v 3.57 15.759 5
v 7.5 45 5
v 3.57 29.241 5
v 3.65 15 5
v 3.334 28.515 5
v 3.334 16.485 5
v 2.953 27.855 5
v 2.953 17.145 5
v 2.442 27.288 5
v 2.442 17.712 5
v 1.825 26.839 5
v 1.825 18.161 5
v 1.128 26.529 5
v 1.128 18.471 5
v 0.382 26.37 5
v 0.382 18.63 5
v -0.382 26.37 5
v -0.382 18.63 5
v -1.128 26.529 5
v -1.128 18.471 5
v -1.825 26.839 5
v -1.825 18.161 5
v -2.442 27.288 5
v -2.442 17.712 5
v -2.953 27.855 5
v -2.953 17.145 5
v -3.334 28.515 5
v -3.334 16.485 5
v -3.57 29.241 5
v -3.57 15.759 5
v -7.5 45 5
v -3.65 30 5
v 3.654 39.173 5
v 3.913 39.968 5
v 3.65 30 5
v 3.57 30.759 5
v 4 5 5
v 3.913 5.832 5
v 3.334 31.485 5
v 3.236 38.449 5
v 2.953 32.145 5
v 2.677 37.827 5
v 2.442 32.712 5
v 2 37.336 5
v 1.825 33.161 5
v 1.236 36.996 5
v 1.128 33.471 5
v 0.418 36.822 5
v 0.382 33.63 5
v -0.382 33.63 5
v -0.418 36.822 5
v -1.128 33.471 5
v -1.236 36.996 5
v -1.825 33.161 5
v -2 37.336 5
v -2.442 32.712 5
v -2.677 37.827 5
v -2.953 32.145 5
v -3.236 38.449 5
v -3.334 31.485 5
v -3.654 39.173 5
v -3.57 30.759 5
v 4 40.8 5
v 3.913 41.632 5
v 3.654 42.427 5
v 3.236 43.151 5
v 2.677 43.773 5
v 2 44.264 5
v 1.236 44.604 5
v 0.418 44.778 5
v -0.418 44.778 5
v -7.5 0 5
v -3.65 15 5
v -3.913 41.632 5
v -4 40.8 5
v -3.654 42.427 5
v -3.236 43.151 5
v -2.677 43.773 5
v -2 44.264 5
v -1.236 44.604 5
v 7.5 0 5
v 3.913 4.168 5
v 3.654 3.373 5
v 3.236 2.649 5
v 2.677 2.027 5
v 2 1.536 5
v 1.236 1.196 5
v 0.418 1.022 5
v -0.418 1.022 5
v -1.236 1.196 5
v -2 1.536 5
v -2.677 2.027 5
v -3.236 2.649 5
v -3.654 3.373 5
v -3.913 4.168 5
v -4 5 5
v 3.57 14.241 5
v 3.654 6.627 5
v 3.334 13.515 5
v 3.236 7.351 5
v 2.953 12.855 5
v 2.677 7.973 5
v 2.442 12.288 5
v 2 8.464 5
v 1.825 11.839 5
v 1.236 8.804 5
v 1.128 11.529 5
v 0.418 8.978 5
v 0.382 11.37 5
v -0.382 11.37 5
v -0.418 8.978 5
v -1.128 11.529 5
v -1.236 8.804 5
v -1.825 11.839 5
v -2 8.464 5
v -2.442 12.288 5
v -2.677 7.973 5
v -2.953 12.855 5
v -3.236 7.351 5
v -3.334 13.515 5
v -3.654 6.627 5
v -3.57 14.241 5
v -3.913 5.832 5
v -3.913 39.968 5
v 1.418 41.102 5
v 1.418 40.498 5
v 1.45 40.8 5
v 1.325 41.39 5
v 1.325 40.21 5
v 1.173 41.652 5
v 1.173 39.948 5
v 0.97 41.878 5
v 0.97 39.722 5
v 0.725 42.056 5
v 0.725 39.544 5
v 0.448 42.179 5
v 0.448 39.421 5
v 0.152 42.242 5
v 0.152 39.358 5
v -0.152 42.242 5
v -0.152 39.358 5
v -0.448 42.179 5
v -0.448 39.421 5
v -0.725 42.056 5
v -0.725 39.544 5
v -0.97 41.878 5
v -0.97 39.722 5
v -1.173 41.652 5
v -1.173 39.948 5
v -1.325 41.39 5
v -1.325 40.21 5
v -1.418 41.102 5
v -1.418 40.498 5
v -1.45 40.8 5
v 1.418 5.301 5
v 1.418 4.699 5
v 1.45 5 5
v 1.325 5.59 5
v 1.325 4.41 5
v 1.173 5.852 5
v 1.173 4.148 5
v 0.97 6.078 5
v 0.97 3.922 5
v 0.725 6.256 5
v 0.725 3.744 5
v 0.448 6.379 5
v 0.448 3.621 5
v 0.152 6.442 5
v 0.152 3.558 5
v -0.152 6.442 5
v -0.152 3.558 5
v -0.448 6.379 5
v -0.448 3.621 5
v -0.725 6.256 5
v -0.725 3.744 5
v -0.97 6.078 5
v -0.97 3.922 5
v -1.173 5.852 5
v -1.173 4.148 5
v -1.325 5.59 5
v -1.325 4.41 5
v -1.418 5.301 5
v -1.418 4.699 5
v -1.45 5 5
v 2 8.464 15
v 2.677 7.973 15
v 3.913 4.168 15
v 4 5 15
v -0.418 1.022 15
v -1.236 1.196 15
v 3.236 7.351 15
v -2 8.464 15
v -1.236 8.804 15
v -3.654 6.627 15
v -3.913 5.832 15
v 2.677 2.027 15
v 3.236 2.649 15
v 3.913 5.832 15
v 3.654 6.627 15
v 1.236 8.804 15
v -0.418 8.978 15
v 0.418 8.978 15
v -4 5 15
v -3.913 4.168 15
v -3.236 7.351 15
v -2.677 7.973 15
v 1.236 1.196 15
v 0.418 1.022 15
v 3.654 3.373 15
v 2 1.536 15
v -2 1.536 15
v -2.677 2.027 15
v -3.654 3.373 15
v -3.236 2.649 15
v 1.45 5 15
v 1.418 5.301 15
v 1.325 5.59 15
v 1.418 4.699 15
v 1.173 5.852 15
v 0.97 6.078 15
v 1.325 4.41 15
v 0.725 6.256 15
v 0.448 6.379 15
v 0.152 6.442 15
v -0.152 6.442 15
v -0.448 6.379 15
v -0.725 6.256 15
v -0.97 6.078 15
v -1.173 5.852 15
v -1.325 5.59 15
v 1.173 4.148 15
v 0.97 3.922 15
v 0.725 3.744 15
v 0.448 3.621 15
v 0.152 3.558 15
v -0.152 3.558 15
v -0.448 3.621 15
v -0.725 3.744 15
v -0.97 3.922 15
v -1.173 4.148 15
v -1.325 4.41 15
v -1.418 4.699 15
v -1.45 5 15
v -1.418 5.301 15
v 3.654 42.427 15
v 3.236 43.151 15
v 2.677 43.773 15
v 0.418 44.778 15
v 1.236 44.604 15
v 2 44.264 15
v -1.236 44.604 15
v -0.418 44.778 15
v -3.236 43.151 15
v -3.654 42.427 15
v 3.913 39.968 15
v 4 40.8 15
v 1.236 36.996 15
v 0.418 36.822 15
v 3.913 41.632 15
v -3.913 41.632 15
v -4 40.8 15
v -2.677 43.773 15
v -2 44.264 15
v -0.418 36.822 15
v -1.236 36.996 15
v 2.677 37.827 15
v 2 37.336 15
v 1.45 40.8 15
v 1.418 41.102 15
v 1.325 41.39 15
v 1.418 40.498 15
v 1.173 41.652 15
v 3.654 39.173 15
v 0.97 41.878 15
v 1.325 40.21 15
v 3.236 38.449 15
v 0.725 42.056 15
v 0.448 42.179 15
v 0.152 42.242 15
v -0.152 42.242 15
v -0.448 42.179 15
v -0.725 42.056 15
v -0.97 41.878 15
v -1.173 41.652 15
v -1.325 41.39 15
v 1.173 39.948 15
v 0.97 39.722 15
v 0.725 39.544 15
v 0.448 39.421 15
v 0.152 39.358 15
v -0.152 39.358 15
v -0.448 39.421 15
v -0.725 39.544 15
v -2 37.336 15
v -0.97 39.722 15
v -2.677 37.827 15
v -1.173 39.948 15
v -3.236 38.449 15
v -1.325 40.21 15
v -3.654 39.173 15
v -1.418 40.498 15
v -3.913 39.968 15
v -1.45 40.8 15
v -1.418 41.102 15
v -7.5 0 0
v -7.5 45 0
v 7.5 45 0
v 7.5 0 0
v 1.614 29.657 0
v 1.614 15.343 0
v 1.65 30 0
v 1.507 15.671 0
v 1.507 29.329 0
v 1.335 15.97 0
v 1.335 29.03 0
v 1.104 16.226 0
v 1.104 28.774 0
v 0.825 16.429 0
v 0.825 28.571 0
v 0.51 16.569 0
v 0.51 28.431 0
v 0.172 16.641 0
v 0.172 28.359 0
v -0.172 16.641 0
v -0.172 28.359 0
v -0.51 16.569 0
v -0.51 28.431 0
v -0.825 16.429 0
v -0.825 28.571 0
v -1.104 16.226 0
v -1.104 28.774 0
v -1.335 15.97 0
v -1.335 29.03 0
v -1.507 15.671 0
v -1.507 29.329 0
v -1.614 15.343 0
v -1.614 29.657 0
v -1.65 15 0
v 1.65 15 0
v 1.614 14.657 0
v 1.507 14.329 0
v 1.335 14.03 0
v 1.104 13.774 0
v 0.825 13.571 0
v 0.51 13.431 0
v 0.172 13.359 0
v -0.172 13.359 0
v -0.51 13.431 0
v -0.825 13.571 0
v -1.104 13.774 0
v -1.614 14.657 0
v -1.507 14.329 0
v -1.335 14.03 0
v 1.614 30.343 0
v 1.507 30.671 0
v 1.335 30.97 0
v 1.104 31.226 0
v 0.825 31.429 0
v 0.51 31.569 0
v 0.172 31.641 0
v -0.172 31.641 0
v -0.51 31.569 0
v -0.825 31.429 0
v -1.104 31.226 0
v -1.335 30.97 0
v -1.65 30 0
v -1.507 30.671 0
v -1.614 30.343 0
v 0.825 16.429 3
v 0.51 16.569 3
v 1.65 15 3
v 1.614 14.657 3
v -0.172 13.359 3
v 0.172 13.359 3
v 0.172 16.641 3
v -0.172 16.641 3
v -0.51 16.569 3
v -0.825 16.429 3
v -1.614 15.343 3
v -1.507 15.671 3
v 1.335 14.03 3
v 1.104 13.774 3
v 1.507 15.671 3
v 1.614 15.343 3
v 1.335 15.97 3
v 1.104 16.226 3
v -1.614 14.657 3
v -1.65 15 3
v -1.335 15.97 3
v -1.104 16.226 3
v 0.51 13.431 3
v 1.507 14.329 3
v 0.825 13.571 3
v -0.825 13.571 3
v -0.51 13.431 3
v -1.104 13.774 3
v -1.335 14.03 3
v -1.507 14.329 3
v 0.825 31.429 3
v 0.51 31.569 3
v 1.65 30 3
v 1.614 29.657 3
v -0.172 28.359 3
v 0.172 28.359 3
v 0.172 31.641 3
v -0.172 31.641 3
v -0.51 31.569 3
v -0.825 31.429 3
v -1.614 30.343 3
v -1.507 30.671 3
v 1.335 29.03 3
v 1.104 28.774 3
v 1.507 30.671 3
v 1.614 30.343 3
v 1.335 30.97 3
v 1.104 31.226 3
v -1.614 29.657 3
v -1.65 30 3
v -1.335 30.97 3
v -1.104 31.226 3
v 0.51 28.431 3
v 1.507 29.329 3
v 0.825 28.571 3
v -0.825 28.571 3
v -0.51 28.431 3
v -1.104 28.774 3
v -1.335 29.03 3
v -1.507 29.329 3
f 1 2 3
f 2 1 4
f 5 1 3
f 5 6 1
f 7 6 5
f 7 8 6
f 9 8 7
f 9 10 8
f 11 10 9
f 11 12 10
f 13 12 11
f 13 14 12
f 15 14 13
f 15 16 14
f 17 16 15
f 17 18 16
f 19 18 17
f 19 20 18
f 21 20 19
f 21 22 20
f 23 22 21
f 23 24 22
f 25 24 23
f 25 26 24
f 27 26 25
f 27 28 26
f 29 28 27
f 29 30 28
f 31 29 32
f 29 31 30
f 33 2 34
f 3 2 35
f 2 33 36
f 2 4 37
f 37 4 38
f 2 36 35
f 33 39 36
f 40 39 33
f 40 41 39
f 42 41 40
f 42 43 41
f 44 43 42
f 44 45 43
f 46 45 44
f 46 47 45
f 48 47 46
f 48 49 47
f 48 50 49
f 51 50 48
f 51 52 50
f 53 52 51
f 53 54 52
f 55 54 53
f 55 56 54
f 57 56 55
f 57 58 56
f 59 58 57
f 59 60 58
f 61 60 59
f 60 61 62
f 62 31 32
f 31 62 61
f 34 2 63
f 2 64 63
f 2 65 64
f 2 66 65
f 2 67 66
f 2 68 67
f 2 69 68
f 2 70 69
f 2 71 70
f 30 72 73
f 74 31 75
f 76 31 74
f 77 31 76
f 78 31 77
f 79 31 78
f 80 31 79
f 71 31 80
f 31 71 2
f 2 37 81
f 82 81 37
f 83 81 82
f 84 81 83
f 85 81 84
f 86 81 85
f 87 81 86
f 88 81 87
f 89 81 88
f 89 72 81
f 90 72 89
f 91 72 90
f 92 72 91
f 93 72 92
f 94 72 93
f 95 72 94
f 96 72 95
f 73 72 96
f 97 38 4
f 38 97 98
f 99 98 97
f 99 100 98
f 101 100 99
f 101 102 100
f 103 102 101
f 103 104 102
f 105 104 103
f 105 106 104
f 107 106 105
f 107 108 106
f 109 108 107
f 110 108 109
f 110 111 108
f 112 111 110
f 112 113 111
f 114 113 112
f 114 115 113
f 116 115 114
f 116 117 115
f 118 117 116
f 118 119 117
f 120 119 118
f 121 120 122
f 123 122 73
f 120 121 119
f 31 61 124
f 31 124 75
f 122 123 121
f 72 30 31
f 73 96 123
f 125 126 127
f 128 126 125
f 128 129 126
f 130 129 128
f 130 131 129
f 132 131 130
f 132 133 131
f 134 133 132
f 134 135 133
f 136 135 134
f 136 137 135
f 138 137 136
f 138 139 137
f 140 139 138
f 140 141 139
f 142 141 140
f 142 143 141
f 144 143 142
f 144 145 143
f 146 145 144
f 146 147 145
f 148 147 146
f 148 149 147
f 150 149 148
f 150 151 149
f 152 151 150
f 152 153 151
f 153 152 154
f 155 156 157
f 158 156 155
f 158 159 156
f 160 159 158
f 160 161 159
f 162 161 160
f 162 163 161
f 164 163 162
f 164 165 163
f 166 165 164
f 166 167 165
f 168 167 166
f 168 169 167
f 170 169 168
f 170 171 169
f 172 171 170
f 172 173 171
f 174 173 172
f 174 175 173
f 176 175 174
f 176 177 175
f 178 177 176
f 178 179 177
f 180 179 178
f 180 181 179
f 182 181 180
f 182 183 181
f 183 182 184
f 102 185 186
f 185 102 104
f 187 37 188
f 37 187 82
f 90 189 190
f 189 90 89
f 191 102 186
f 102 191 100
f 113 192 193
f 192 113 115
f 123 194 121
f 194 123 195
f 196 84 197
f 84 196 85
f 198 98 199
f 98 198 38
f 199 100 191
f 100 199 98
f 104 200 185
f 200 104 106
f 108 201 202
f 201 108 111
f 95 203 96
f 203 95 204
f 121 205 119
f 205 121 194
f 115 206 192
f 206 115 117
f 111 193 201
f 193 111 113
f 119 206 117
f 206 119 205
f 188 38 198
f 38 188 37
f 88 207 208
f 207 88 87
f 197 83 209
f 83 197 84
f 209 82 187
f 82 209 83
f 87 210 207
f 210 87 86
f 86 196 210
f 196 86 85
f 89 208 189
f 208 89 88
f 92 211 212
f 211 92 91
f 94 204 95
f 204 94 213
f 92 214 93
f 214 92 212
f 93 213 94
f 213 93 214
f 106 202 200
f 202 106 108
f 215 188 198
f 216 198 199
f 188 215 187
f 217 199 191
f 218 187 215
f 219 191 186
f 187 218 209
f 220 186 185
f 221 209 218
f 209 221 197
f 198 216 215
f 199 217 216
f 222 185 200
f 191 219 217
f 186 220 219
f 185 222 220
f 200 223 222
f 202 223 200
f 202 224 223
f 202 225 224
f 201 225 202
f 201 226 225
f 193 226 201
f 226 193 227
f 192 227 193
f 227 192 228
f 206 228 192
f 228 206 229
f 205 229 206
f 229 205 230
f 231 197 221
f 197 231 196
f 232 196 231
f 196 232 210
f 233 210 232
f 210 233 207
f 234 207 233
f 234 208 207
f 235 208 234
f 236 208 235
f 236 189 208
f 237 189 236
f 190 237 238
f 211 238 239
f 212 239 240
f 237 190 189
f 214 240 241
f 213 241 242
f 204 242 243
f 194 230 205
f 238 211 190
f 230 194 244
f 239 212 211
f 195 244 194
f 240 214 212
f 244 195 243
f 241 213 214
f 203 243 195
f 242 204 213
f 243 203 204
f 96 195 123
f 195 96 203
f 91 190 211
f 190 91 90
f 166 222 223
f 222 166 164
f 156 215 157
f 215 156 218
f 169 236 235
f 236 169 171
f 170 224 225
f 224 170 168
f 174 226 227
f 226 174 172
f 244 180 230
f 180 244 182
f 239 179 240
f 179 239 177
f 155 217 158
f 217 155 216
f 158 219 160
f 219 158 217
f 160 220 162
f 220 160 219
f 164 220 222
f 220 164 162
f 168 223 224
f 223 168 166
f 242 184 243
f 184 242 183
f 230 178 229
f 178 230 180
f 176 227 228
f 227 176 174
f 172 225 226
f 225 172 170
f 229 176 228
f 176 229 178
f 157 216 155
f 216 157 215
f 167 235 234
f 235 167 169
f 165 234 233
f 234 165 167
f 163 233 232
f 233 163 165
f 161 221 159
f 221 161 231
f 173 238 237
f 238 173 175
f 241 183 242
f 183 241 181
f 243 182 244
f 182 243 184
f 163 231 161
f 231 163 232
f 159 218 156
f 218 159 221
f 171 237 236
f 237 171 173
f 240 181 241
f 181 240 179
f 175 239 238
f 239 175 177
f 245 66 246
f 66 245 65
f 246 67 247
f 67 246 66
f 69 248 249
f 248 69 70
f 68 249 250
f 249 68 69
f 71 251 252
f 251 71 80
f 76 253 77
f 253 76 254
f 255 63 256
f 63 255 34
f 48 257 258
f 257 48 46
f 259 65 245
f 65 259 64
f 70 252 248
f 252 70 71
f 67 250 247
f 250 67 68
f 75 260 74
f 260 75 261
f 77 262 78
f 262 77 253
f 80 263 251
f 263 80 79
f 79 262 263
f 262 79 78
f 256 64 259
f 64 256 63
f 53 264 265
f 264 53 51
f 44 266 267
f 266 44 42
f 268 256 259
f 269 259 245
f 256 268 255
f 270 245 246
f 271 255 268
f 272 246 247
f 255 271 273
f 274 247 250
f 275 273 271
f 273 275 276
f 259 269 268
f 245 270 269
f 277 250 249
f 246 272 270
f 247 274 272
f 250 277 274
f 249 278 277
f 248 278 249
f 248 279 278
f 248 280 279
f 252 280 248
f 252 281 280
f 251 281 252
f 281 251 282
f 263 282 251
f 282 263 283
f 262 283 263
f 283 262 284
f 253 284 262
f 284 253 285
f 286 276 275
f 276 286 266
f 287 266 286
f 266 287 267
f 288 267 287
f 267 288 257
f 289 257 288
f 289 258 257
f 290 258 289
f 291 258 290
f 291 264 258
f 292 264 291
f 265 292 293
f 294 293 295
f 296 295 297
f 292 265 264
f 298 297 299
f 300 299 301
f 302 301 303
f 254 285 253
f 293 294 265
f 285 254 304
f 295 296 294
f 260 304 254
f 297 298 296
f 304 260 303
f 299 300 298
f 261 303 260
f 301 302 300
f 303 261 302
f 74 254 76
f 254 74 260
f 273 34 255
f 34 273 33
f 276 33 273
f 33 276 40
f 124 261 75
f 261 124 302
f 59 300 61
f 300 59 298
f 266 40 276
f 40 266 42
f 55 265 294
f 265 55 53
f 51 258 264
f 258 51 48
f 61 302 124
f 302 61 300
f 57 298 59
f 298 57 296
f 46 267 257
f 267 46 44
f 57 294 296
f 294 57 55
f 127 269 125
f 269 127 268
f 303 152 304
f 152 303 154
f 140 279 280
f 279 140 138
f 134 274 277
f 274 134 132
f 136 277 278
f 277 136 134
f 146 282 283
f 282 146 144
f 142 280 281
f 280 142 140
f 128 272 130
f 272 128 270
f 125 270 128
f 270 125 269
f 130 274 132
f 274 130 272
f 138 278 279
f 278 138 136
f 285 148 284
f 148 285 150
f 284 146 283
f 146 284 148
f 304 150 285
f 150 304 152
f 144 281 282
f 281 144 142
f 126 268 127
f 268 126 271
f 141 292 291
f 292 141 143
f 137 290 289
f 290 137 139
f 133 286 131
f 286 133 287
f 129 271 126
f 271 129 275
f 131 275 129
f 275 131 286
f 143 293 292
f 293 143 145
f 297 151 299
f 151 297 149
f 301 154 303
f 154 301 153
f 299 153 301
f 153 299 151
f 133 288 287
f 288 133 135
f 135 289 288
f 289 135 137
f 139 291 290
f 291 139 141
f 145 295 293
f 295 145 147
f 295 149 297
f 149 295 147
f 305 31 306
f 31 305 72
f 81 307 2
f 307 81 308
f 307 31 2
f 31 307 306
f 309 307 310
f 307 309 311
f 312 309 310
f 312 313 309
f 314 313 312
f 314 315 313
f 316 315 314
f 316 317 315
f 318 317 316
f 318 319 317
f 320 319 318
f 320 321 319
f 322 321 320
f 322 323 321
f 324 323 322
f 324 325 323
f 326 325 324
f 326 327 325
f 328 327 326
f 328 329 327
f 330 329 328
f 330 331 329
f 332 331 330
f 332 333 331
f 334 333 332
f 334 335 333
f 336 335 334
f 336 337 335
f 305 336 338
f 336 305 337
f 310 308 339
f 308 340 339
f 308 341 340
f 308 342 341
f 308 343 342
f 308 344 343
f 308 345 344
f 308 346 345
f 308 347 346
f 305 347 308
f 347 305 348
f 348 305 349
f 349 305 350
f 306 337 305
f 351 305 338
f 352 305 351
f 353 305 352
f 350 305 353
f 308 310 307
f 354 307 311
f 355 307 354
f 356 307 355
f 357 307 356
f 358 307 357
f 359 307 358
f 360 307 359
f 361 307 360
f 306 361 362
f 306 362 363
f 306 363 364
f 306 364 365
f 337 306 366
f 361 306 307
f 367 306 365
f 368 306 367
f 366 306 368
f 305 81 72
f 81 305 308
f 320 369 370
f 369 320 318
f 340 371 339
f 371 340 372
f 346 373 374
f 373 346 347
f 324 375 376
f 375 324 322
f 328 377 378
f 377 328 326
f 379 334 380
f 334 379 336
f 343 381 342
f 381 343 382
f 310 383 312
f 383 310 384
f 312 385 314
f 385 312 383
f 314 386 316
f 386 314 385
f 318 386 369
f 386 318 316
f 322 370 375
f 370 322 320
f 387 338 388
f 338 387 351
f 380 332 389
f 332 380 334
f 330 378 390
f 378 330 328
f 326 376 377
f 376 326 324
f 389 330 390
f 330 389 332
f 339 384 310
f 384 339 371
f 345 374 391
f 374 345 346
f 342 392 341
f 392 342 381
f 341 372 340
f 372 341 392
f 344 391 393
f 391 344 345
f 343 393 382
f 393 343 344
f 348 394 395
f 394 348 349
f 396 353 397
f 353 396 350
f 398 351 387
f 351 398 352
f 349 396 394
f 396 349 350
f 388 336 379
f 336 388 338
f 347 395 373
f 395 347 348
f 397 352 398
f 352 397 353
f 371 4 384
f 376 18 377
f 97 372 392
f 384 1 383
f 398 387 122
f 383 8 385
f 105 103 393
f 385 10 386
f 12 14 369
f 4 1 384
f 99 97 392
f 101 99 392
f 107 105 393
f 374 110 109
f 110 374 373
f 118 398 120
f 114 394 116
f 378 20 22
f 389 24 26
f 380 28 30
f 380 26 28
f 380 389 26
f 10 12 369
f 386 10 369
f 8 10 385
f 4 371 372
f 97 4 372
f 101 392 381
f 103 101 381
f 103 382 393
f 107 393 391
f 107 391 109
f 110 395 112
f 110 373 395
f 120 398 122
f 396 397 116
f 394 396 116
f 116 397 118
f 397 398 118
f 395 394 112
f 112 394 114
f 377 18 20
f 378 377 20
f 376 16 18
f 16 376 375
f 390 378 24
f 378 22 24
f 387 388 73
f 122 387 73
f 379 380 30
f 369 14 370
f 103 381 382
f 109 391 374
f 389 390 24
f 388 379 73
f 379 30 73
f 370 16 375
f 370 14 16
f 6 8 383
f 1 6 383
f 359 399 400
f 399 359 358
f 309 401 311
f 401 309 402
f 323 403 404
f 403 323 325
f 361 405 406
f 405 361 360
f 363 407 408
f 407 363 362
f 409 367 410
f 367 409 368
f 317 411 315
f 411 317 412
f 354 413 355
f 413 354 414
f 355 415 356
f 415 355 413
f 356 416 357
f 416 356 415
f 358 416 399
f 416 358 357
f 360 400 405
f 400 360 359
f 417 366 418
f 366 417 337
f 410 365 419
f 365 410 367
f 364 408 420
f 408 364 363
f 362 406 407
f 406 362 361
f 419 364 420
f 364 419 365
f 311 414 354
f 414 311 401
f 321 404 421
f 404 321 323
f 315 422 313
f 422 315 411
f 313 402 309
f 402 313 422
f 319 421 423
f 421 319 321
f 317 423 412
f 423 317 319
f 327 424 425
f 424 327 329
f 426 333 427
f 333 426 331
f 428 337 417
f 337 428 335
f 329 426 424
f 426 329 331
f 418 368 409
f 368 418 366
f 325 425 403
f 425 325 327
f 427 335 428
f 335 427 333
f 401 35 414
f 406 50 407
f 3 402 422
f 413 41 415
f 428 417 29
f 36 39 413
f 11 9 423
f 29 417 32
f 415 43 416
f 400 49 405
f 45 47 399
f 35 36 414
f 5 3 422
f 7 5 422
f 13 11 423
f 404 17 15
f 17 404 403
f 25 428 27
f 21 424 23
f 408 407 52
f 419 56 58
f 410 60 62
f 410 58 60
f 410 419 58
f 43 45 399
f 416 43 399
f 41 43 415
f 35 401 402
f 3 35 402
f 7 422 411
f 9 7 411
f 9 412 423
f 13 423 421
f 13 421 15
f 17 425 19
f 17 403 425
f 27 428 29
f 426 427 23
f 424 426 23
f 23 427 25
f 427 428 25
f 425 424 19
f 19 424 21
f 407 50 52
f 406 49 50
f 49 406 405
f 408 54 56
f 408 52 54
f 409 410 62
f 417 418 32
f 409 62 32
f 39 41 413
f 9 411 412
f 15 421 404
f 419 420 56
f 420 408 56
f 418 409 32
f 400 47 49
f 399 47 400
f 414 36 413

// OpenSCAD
// Quarter size perfboard mount.
// 2.5mm holes for machine screws.
// Should drill/tap after print
// Adafruit Perma-Proto Quarter-sized Breadboard PCB 

$fn=30; // Number of facets

mouting_hole = 2.9; // mounting hole diameter
bh=5; // base height
d=35.8;

//Spacer with hole
module spacer(x=0, y=0, z=0){
    difference(){
        translate([x,y,z]){
            cylinder(d=8, h=10);
        }
        translate([x,y,z]){
            cylinder(d=mouting_hole, h=12);
        }
    }
}

spacer(0, 5, bh);
spacer(0, 5+d, bh);

bx = 15;
by = 45;
    
// Draw base
module base() {
    translate([-bx/2,0,0]){
    cube([bx, by, bh]);
    }
}

// Mounting holes
// #6 screw = 3.3mm diameter
difference(){
    base();
    // first hole
    translate([0, by/3, 0]){
    cylinder(d=3.3, h=bh);
    }
    chamfer(0, by/3, bh-2);
    // second hole
    translate([0, 2*by/3, 0]){
    cylinder(d=3.3, h=bh);
    }
    chamfer(0, 2*by/3, bh-2);
}

module chamfer(x,y,z,cd=3.3, cw=2){
    // x, y, z = center coordinates of chamfer
    // cd: chamfer smallest diameter
    // cw: width of chamfer.  
    color("red")
    translate([x, y, z]){
    cylinder(d1=cd, d2=cd+2*cw, h=cw);
    }
}
